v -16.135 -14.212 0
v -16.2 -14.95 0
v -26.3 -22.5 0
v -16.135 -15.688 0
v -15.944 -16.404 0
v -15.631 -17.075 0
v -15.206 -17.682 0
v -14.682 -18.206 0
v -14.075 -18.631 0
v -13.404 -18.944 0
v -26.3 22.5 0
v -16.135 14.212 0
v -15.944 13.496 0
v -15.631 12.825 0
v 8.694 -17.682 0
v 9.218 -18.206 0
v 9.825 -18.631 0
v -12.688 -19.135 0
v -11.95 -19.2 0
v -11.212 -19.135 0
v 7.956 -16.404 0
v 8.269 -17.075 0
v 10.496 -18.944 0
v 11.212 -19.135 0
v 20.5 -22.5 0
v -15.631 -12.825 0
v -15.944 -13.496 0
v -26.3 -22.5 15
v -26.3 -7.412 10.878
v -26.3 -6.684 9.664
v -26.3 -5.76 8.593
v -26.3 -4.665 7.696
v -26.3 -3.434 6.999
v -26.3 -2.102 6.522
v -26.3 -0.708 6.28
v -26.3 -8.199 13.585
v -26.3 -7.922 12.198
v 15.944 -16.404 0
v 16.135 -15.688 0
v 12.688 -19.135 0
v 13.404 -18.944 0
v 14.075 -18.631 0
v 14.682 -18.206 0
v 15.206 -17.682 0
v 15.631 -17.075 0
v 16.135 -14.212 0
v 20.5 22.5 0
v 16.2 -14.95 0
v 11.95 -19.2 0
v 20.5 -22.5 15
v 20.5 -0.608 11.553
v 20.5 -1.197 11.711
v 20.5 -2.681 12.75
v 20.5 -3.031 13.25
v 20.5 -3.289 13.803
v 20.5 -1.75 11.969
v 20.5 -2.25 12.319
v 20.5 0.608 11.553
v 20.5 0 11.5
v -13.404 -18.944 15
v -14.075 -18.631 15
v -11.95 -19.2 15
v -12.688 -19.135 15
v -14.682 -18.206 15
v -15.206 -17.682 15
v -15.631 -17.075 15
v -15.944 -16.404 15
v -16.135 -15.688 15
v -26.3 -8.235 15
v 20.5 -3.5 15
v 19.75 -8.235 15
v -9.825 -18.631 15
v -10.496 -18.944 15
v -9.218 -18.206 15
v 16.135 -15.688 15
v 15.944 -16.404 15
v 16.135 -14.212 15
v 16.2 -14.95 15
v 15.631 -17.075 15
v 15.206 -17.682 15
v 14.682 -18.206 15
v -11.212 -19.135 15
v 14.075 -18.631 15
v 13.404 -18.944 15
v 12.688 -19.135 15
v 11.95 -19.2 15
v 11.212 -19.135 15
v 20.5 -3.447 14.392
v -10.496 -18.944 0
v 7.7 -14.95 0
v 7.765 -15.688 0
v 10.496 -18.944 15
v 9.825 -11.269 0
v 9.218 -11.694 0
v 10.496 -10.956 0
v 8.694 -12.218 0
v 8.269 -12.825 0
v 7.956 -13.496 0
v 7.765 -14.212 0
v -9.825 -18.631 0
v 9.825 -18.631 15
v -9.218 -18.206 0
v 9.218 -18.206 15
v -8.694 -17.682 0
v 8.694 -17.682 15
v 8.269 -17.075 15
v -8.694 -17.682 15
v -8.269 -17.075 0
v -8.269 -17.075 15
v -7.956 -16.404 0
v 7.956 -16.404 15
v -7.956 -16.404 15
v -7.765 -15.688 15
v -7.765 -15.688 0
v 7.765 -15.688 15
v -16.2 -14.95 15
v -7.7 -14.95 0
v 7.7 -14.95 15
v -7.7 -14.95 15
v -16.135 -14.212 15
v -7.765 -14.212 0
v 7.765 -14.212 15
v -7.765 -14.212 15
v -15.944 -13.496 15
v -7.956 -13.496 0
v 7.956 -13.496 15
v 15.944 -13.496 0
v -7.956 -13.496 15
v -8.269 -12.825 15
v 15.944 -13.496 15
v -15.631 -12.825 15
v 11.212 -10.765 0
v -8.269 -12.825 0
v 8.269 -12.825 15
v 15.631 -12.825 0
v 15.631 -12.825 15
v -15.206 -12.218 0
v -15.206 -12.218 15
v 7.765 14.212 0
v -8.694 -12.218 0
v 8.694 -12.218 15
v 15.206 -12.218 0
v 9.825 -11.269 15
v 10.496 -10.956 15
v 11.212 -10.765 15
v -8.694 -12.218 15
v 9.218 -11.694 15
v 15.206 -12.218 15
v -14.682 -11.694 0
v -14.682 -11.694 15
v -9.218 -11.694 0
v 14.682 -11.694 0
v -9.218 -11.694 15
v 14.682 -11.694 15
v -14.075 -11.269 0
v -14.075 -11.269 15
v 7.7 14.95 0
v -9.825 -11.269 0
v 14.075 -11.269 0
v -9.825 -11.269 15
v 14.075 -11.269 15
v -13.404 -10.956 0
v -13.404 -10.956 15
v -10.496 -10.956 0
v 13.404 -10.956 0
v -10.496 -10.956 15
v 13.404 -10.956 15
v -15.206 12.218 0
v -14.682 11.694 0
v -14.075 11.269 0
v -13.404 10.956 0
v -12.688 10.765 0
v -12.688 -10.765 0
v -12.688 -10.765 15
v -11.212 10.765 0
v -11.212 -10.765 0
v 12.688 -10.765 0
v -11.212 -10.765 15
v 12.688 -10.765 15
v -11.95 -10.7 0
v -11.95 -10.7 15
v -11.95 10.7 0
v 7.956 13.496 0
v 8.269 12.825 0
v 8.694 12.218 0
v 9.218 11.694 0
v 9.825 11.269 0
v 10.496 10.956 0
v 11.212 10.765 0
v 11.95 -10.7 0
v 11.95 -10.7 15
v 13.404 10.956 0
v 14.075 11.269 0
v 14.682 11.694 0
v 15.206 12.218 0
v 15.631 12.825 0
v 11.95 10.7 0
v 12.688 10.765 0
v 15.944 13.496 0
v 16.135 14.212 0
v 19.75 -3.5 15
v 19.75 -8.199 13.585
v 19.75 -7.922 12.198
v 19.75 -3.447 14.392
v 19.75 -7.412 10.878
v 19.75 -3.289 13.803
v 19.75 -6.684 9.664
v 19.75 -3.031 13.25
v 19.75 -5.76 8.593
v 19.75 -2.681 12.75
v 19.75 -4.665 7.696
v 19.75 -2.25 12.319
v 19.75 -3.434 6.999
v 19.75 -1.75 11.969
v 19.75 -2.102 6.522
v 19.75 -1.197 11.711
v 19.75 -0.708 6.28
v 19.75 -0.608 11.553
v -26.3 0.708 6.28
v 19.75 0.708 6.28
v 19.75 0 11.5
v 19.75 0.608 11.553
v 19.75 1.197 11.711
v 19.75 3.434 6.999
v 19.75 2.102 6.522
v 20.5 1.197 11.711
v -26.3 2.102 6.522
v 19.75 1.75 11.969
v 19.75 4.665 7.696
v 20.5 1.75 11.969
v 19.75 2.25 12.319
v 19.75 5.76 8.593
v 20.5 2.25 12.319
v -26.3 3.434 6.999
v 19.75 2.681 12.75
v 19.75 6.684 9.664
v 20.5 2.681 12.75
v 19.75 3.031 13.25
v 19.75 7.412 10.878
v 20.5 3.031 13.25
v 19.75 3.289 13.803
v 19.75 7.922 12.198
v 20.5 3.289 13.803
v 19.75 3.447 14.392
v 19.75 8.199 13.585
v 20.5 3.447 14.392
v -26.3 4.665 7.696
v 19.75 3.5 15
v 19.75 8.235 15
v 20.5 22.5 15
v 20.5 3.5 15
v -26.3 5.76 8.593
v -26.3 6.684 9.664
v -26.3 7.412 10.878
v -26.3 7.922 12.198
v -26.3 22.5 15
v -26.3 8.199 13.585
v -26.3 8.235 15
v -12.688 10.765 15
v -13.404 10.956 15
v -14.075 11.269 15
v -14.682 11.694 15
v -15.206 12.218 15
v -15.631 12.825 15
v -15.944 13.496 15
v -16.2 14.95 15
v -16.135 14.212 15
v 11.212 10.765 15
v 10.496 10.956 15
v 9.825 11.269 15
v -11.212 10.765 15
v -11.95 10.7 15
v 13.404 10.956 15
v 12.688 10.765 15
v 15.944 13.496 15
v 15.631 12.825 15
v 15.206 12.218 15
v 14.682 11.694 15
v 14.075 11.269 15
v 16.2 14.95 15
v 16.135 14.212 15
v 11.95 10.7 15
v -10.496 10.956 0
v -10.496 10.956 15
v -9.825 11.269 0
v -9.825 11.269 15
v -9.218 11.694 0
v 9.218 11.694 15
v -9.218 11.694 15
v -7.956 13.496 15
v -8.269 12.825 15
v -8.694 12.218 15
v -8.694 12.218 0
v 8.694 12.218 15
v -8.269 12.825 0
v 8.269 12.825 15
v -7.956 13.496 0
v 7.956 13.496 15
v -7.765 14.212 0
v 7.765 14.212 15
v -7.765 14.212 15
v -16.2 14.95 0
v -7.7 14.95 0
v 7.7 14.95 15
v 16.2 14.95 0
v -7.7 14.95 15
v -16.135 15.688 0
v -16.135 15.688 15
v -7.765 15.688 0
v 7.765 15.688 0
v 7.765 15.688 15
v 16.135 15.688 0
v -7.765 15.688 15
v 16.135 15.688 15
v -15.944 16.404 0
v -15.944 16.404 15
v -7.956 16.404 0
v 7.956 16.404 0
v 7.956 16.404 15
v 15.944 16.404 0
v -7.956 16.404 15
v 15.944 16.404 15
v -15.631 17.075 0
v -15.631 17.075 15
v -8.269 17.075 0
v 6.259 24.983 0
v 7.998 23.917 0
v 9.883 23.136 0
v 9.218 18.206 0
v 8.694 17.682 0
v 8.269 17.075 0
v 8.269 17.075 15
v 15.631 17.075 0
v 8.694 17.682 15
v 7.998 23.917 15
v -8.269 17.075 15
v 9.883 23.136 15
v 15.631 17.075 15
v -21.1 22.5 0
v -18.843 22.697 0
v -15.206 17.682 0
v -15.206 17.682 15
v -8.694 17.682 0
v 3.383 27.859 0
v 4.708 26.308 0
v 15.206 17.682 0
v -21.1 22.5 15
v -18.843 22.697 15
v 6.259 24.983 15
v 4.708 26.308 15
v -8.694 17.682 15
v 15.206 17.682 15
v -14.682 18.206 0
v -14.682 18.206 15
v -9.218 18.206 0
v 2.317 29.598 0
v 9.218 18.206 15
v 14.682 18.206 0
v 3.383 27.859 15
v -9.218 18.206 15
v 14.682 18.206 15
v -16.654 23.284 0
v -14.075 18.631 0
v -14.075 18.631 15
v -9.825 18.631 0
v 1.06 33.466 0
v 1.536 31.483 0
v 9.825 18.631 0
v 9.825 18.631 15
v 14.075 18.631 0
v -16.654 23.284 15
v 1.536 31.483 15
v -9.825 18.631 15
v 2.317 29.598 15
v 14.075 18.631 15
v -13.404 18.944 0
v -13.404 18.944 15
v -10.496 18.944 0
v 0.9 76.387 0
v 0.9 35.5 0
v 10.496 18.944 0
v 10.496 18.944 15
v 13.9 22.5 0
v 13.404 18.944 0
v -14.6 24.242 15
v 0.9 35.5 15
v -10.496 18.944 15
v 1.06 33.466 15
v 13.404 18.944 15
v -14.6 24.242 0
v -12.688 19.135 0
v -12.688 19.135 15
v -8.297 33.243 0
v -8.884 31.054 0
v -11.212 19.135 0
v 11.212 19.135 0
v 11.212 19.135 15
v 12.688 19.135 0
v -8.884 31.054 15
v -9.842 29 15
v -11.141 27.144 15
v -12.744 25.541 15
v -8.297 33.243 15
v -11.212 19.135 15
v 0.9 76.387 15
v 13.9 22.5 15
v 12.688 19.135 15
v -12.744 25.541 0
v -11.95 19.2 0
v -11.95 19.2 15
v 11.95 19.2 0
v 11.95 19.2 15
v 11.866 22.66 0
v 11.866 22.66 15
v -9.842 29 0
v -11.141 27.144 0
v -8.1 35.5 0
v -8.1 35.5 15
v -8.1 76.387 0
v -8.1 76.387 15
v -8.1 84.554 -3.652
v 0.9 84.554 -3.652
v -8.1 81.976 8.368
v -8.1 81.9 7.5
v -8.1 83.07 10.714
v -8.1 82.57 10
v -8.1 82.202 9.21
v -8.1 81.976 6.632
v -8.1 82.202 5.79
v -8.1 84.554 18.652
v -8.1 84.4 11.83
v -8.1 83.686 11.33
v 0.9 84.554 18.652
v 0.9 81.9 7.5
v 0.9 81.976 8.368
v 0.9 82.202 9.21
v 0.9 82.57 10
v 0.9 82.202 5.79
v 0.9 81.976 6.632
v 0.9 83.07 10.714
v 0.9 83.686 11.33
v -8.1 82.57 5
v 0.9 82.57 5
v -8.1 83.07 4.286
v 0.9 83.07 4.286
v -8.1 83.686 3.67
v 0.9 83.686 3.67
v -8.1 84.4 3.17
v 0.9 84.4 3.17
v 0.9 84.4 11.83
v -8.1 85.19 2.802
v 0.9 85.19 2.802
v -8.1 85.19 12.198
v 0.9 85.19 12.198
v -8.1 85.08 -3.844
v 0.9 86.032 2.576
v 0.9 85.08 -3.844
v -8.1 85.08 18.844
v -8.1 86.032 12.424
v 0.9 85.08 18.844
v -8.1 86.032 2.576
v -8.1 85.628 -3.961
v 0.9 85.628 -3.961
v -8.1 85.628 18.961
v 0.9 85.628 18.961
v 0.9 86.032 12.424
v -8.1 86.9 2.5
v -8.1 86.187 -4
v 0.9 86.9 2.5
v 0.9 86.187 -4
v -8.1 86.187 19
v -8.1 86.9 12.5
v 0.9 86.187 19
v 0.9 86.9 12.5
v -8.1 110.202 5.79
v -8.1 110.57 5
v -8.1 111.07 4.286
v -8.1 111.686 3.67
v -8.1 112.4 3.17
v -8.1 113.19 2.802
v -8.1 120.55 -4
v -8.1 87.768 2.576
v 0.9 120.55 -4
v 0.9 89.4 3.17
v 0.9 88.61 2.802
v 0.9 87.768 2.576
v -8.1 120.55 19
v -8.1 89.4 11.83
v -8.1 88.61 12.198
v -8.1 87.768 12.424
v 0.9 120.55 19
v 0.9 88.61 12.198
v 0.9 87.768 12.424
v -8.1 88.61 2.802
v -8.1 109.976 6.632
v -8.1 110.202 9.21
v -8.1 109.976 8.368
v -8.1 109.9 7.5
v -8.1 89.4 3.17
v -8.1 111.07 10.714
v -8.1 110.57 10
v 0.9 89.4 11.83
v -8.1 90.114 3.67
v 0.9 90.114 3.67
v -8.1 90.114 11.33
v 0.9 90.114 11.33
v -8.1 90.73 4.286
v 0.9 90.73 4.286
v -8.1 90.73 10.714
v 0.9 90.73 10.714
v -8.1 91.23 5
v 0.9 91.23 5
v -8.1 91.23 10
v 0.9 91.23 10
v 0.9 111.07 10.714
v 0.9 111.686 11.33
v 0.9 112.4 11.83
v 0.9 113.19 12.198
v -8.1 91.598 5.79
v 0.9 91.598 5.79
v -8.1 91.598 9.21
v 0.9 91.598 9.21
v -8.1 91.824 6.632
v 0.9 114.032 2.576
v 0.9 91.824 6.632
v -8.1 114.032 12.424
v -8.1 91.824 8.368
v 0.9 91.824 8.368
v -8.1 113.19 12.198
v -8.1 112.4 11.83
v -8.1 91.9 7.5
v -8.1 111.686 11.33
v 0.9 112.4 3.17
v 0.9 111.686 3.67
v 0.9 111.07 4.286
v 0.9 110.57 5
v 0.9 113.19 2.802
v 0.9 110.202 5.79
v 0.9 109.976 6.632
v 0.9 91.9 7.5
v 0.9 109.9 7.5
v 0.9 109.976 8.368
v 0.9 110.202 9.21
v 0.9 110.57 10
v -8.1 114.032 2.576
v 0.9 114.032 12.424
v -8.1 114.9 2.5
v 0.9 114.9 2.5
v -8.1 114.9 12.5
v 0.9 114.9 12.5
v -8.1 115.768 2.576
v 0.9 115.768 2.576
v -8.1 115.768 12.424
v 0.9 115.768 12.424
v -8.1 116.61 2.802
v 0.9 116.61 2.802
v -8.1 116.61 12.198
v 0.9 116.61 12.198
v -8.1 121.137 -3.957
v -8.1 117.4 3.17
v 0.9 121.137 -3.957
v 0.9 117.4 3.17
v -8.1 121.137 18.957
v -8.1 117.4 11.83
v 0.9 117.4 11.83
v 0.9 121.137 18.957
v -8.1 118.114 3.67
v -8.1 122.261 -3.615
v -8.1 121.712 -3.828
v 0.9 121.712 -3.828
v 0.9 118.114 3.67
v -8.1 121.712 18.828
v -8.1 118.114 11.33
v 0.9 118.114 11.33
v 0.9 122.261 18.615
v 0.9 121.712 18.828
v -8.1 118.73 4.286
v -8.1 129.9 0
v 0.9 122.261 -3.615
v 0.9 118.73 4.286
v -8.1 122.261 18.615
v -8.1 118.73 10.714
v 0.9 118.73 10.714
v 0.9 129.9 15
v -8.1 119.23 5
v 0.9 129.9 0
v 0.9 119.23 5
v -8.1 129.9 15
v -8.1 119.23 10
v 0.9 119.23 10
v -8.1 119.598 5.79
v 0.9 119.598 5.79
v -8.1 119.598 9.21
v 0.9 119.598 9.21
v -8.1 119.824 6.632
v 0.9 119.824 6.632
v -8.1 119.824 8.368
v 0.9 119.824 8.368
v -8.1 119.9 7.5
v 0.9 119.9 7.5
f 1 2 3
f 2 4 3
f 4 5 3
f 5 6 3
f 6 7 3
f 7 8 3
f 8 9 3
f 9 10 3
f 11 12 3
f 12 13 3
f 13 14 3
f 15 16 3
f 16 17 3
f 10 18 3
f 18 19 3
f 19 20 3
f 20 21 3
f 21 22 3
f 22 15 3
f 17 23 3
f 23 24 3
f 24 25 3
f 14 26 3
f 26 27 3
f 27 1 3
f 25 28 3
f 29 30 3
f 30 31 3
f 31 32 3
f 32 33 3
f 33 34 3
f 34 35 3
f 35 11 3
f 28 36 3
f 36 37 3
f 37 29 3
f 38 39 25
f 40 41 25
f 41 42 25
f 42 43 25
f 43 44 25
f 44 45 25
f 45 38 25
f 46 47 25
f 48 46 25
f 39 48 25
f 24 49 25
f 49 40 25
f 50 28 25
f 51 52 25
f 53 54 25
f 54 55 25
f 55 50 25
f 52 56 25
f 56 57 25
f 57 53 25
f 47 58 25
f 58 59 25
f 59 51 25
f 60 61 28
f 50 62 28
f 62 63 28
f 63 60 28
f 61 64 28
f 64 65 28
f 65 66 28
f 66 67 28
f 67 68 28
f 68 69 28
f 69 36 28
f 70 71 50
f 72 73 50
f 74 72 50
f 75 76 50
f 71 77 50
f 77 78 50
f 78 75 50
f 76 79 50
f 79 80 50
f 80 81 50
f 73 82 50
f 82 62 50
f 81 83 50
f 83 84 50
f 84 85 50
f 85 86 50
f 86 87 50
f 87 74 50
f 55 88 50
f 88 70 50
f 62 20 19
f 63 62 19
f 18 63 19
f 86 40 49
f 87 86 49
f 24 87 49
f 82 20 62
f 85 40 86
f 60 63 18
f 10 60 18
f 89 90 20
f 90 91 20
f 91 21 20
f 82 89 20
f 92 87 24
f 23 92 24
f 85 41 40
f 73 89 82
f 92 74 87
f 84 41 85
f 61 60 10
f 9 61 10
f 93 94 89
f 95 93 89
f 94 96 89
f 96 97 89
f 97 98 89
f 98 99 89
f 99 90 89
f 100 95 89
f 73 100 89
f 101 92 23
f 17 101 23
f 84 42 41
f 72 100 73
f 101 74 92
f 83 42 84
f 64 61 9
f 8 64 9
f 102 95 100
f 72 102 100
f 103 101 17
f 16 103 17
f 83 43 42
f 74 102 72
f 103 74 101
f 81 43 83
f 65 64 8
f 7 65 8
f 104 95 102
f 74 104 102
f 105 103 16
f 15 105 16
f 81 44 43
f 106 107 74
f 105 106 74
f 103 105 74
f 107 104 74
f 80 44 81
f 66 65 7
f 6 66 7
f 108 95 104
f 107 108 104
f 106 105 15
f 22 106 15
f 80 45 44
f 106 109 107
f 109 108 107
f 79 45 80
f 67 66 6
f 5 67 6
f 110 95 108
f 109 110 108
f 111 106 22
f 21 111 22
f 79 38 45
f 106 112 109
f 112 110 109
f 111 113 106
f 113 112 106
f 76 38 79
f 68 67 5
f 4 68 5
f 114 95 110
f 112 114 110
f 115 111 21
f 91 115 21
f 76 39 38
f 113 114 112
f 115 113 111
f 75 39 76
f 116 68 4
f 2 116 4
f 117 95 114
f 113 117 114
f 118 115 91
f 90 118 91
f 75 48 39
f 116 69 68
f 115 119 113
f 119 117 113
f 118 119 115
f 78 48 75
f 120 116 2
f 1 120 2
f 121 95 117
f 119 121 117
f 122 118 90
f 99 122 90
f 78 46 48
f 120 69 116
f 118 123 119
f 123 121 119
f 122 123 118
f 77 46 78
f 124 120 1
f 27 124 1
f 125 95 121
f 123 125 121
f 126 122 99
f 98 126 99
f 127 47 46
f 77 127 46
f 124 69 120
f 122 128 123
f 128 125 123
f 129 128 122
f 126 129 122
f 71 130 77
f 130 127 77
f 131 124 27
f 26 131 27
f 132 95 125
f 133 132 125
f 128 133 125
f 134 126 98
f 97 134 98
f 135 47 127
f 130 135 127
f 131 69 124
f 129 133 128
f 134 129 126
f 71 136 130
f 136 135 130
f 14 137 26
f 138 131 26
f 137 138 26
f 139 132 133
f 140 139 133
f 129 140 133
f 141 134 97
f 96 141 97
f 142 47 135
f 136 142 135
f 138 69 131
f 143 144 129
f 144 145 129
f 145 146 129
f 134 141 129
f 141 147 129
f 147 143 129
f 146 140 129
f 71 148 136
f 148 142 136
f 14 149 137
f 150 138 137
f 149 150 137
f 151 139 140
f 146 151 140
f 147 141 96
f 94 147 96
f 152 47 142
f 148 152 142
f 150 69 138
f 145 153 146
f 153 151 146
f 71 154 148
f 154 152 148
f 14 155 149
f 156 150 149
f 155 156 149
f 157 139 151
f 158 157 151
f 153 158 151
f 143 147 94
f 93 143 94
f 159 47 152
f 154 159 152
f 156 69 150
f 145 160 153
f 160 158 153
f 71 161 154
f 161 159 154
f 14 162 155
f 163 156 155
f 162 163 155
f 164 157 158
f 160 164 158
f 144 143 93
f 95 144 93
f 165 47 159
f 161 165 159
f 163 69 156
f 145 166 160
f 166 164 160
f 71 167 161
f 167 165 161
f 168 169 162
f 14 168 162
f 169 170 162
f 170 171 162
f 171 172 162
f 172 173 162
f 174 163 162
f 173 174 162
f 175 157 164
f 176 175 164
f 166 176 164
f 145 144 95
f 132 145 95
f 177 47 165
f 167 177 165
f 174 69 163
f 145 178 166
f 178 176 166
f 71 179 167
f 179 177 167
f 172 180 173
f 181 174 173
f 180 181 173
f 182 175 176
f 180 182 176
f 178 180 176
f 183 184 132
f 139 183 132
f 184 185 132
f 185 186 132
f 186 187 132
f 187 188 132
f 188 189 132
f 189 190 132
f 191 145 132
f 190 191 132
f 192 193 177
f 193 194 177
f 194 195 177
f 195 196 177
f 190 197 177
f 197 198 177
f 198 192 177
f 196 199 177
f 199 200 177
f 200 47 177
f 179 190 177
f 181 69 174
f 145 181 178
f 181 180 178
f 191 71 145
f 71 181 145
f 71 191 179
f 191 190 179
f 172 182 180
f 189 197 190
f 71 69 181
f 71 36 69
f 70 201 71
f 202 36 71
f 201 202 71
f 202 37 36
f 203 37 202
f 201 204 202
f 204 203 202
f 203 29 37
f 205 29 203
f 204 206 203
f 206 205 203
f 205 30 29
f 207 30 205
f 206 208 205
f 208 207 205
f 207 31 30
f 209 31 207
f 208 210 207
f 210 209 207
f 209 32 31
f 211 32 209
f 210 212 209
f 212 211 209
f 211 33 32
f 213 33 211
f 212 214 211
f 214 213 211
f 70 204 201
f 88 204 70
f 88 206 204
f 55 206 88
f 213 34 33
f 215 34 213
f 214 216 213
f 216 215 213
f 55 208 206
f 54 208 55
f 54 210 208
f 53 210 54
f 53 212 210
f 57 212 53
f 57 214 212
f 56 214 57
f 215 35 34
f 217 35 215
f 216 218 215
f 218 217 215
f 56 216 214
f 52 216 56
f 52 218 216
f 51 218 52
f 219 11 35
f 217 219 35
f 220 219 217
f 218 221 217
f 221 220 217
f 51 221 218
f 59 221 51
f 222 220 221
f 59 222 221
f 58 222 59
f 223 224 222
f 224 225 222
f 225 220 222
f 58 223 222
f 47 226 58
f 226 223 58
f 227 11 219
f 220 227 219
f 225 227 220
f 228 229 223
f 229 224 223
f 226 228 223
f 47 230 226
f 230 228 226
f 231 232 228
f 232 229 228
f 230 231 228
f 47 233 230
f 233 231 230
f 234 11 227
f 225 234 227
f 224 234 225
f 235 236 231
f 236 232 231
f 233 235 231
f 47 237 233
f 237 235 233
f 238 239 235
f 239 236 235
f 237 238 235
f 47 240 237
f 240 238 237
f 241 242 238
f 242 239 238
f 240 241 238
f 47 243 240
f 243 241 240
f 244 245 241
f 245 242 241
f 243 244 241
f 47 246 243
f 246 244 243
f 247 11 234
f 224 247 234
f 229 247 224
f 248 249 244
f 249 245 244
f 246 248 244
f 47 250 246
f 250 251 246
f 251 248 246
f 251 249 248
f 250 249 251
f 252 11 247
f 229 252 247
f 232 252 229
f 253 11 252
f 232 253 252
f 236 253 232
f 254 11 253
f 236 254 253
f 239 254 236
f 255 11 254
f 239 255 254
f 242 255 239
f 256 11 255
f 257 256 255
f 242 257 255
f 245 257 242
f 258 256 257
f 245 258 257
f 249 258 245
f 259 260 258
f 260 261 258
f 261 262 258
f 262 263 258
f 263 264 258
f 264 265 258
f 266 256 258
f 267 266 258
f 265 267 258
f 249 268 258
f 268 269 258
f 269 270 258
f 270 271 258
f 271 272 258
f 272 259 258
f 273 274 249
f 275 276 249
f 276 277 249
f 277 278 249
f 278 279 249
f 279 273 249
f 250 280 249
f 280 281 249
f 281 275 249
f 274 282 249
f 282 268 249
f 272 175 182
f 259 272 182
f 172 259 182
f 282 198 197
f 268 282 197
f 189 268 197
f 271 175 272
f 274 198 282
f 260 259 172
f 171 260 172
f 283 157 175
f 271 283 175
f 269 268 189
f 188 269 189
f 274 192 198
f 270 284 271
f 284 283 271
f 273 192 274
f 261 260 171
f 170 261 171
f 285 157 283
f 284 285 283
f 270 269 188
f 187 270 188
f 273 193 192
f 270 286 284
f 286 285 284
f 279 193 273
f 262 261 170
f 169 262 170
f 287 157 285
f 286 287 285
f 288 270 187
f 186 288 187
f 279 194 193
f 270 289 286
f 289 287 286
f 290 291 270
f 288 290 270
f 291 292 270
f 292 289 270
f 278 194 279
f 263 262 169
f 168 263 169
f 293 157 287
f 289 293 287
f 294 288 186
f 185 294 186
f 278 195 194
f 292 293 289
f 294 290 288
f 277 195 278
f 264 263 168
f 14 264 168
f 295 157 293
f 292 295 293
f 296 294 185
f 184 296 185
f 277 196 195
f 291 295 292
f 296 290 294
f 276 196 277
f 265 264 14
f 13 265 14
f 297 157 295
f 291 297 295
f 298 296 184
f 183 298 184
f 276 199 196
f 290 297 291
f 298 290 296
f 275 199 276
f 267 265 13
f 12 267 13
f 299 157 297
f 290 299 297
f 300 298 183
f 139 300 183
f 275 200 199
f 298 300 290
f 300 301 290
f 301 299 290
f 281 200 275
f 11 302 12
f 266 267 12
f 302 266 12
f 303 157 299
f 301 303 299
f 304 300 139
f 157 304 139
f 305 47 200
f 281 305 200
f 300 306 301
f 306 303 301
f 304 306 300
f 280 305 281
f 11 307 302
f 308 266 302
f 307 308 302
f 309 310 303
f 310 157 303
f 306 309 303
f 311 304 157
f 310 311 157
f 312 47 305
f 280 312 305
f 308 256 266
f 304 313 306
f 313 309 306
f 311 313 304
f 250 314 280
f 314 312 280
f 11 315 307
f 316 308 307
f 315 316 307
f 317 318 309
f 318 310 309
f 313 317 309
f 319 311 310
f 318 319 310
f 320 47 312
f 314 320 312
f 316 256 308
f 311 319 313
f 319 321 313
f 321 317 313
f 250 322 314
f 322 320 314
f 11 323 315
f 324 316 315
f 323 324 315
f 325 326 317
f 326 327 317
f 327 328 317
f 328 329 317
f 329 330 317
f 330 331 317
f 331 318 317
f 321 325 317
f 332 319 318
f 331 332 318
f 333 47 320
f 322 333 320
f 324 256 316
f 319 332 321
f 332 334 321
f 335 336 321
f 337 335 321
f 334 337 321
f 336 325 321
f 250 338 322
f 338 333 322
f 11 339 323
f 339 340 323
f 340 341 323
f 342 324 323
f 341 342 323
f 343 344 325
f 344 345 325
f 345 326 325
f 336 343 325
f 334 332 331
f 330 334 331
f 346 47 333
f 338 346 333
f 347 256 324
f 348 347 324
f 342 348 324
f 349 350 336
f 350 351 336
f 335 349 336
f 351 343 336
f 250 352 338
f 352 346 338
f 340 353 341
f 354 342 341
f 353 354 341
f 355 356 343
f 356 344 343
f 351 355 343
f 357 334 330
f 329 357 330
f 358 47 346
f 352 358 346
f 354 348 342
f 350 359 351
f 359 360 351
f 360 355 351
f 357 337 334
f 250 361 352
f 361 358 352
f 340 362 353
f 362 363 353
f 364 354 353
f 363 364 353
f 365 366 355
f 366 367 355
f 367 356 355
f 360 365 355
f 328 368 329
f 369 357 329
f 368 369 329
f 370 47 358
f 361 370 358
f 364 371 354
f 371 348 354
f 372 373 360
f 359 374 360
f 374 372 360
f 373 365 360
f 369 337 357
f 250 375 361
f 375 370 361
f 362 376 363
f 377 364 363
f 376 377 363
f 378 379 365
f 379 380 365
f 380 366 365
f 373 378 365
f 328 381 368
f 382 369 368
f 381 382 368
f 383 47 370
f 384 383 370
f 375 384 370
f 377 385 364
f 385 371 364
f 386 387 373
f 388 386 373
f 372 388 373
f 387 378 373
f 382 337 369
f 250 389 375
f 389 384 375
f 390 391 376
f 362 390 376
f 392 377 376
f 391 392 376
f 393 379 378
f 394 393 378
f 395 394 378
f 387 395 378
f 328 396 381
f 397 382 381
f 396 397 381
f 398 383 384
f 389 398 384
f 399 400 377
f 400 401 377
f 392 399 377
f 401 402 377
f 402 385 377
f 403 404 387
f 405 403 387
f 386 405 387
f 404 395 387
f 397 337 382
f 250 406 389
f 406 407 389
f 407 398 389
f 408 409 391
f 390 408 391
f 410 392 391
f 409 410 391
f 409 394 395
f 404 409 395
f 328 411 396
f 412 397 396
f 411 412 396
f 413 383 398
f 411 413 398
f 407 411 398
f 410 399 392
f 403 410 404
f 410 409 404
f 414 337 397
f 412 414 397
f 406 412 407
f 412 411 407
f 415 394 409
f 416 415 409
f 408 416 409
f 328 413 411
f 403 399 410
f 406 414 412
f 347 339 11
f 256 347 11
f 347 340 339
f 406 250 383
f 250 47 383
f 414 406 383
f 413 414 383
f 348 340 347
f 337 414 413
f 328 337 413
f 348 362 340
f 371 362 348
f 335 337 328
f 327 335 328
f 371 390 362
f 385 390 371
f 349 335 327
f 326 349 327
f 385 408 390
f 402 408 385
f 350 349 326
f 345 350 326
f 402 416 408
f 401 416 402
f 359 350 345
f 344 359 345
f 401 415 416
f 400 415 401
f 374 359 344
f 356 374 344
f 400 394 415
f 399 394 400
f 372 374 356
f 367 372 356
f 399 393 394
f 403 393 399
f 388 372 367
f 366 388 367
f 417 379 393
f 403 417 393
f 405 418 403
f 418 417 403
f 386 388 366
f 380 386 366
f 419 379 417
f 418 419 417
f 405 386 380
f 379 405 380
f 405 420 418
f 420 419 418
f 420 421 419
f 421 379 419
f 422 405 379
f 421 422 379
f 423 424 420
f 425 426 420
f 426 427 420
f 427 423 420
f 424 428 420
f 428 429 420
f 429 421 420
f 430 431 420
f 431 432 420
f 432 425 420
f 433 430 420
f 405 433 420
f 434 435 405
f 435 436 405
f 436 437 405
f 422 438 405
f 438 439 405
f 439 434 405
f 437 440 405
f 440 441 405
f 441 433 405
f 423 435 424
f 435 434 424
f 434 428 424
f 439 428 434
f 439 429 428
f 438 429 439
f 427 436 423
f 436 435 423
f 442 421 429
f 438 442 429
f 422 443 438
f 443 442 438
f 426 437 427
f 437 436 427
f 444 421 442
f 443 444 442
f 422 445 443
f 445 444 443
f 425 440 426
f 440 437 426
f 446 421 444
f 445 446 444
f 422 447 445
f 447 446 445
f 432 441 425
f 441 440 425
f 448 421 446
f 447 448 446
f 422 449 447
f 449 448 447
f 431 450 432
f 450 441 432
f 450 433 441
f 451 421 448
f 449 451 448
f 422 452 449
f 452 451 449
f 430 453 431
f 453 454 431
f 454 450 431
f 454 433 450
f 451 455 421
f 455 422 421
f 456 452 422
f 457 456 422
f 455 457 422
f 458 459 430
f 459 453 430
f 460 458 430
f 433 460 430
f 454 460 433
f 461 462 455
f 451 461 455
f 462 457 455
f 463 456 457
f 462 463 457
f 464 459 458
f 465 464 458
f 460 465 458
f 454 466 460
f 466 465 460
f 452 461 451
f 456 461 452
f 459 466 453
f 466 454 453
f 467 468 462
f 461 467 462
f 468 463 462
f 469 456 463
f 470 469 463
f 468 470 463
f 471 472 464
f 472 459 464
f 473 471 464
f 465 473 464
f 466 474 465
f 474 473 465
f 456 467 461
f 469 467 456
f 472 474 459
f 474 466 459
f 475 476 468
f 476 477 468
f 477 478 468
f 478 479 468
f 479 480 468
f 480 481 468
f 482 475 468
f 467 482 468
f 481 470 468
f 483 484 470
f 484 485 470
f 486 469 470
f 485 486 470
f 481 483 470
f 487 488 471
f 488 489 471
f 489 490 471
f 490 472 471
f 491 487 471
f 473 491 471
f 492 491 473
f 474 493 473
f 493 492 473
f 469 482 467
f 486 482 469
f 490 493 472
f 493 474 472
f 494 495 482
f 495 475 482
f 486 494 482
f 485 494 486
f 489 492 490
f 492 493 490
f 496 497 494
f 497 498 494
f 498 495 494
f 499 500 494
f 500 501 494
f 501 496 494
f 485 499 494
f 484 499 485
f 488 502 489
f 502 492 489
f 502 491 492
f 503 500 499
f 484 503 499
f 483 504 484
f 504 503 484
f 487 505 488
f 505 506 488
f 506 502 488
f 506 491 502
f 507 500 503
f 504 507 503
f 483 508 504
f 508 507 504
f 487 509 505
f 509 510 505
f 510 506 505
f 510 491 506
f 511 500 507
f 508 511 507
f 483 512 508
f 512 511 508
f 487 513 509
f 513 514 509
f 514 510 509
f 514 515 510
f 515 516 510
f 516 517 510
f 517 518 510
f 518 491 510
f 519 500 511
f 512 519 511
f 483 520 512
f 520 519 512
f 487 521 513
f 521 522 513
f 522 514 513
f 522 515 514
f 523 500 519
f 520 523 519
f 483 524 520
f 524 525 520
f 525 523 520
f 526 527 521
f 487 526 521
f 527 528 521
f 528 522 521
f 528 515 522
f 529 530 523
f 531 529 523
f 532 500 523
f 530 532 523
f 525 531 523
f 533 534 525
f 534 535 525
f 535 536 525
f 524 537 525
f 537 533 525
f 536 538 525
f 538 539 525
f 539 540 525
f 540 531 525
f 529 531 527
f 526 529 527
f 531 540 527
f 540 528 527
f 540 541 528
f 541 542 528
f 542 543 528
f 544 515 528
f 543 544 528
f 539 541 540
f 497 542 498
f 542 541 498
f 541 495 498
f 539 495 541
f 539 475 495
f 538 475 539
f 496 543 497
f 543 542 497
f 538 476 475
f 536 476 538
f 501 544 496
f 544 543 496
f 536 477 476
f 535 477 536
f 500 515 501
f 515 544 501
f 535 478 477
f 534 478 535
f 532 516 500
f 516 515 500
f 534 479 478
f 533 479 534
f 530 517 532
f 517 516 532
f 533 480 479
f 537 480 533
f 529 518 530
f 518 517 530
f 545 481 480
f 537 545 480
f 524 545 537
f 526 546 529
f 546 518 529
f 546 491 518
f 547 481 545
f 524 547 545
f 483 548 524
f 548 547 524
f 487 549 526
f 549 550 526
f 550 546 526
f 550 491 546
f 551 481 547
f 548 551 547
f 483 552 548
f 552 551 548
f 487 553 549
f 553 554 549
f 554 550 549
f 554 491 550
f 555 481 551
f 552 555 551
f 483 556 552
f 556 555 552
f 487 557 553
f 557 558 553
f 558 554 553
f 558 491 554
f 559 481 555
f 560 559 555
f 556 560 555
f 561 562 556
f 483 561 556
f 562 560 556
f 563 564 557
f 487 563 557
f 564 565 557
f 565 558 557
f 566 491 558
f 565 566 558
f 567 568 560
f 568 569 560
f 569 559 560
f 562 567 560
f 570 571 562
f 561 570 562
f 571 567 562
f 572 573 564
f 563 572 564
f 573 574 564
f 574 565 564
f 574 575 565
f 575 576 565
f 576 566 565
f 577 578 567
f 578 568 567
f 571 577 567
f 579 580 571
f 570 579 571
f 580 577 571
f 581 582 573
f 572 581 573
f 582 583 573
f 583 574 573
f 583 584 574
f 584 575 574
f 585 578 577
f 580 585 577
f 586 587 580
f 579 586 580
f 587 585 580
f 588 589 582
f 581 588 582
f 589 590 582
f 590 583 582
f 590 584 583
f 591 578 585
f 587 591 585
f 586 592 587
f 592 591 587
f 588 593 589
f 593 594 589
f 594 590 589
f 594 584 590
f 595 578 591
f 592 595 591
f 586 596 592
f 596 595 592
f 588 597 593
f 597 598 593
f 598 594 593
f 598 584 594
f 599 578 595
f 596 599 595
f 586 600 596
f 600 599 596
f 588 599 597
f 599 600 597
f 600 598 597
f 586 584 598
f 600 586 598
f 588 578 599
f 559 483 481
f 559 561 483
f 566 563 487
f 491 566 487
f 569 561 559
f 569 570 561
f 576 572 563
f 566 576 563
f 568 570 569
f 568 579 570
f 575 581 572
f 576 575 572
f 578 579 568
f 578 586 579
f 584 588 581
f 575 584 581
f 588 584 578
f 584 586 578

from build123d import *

# Parameters (mm, degrees)
SKETCH1_R           = 4.25
BOSS_EXTRUDE1_DEPTH = 15
SKETCH3_R           = 8.25
CUT_EXTRUDE1_DEPTH  = 46.05
SKETCH4_R           = 5
CUT_EXTRUDE3_DEPTH  = 46.05
SKETCH5_R           = 3.5
CUT_EXTRUDE4_DEPTH  = 46.05
BOSS_EXTRUDE2_DEPTH = 9
FILLET1_R           = 13


with BuildPart() as part:
    # Sketch1 → Boss-Extrude1 (new body)
    with BuildSketch(Plane.XY):
        with BuildLine():
            Line((-8.1, 22.5), (-8.1, 129.9))
            Line((-8.1, 129.9), (0.9, 129.9))
            Line((0.9, 129.9), (0.9, 35.5))
            ThreePointArc((0.9, 35.5), (4.707611845, 26.307611845), (13.9, 22.5))
            Line((13.9, 22.5), (20.5, 22.5))
            Line((20.5, 22.5), (20.5, -22.5))
            Line((20.5, -22.5), (-26.3, -22.5))
            Line((-26.3, -22.5), (-26.3, 22.5))
            Line((-26.3, 22.5), (-8.1, 22.5))
        make_face()
        with Locations((-11.95, -14.95)):
            Circle(SKETCH1_R, mode=Mode.SUBTRACT)
        with Locations((11.95, -14.95)):
            Circle(SKETCH1_R, mode=Mode.SUBTRACT)
        with Locations((11.95, 14.95)):
            Circle(SKETCH1_R, mode=Mode.SUBTRACT)
        with Locations((-11.95, 14.95)):
            Circle(SKETCH1_R, mode=Mode.SUBTRACT)
    extrude(amount=BOSS_EXTRUDE1_DEPTH)

    # Sketch3 → Cut-Extrude1 (cut)
    with BuildSketch(Plane.ZY.offset(26.3)):
        with Locations((14.5, 0)):
            Circle(SKETCH3_R)
    extrude(amount=-CUT_EXTRUDE1_DEPTH, mode=Mode.SUBTRACT)

    # Sketch4 → Cut-Extrude3 (cut)
    with BuildSketch(Plane(origin=(0.9, 0, 0), x_dir=(0, 0, -1), z_dir=(1, 0, 0))):
        with Locations((-7.5, 86.9)):
            Circle(SKETCH4_R)
        with Locations((-7.5, 114.9)):
            Circle(SKETCH4_R)
    extrude(amount=-CUT_EXTRUDE3_DEPTH, mode=Mode.SUBTRACT)

    # Sketch5 → Cut-Extrude4 (cut)
    with BuildSketch(Plane(origin=(20.5, 0, 0), x_dir=(0, 0, -1), z_dir=(1, 0, 0))):
        with Locations((-15, 0)):
            Circle(SKETCH5_R)
    extrude(amount=-CUT_EXTRUDE4_DEPTH, mode=Mode.SUBTRACT)

    # Sketch6 → Boss-Extrude2 (add)
    with BuildSketch(Plane.ZY.offset(8.1)):
        with BuildLine():
            Line((15, 76.386851455), (18.651630299, 84.554112306))
            ThreePointArc((18.651630299, 84.554112306), (18.911938215, 85.352068488), (19, 86.186777661))
            Line((19, 86.186777661), (19, 120.550049196))
            ThreePointArc((19, 120.550049196), (18.902685036, 121.427003874), (18.615475246, 122.261288146))
            Line((18.615475246, 122.261288146), (15, 129.9))
            Line((15, 129.9), (15, 76.386851455))
        make_face()
        with BuildLine():
            Line((-3.615475246, 122.261288146), (0, 129.9))
            Line((0, 129.9), (0, 76.386851455))
            Line((0, 76.386851455), (-3.651630299, 84.554112306))
            ThreePointArc((-3.651630299, 84.554112306), (-3.911938215, 85.352068488), (-4, 86.186777661))
            Line((-4, 86.186777661), (-4, 120.550049196))
            ThreePointArc((-4, 120.550049196), (-3.902685036, 121.427003874), (-3.615475246, 122.261288146))
        make_face()
    extrude(amount=-BOSS_EXTRUDE2_DEPTH)

    # Fillet1
    fillet1_edges = [part.edges().sort_by_distance(p)[0] for p in [
        (-8.1, 22.5, 7.5),
    ]]
    fillet(fillet1_edges, radius=FILLET1_R)


solid = part.part
